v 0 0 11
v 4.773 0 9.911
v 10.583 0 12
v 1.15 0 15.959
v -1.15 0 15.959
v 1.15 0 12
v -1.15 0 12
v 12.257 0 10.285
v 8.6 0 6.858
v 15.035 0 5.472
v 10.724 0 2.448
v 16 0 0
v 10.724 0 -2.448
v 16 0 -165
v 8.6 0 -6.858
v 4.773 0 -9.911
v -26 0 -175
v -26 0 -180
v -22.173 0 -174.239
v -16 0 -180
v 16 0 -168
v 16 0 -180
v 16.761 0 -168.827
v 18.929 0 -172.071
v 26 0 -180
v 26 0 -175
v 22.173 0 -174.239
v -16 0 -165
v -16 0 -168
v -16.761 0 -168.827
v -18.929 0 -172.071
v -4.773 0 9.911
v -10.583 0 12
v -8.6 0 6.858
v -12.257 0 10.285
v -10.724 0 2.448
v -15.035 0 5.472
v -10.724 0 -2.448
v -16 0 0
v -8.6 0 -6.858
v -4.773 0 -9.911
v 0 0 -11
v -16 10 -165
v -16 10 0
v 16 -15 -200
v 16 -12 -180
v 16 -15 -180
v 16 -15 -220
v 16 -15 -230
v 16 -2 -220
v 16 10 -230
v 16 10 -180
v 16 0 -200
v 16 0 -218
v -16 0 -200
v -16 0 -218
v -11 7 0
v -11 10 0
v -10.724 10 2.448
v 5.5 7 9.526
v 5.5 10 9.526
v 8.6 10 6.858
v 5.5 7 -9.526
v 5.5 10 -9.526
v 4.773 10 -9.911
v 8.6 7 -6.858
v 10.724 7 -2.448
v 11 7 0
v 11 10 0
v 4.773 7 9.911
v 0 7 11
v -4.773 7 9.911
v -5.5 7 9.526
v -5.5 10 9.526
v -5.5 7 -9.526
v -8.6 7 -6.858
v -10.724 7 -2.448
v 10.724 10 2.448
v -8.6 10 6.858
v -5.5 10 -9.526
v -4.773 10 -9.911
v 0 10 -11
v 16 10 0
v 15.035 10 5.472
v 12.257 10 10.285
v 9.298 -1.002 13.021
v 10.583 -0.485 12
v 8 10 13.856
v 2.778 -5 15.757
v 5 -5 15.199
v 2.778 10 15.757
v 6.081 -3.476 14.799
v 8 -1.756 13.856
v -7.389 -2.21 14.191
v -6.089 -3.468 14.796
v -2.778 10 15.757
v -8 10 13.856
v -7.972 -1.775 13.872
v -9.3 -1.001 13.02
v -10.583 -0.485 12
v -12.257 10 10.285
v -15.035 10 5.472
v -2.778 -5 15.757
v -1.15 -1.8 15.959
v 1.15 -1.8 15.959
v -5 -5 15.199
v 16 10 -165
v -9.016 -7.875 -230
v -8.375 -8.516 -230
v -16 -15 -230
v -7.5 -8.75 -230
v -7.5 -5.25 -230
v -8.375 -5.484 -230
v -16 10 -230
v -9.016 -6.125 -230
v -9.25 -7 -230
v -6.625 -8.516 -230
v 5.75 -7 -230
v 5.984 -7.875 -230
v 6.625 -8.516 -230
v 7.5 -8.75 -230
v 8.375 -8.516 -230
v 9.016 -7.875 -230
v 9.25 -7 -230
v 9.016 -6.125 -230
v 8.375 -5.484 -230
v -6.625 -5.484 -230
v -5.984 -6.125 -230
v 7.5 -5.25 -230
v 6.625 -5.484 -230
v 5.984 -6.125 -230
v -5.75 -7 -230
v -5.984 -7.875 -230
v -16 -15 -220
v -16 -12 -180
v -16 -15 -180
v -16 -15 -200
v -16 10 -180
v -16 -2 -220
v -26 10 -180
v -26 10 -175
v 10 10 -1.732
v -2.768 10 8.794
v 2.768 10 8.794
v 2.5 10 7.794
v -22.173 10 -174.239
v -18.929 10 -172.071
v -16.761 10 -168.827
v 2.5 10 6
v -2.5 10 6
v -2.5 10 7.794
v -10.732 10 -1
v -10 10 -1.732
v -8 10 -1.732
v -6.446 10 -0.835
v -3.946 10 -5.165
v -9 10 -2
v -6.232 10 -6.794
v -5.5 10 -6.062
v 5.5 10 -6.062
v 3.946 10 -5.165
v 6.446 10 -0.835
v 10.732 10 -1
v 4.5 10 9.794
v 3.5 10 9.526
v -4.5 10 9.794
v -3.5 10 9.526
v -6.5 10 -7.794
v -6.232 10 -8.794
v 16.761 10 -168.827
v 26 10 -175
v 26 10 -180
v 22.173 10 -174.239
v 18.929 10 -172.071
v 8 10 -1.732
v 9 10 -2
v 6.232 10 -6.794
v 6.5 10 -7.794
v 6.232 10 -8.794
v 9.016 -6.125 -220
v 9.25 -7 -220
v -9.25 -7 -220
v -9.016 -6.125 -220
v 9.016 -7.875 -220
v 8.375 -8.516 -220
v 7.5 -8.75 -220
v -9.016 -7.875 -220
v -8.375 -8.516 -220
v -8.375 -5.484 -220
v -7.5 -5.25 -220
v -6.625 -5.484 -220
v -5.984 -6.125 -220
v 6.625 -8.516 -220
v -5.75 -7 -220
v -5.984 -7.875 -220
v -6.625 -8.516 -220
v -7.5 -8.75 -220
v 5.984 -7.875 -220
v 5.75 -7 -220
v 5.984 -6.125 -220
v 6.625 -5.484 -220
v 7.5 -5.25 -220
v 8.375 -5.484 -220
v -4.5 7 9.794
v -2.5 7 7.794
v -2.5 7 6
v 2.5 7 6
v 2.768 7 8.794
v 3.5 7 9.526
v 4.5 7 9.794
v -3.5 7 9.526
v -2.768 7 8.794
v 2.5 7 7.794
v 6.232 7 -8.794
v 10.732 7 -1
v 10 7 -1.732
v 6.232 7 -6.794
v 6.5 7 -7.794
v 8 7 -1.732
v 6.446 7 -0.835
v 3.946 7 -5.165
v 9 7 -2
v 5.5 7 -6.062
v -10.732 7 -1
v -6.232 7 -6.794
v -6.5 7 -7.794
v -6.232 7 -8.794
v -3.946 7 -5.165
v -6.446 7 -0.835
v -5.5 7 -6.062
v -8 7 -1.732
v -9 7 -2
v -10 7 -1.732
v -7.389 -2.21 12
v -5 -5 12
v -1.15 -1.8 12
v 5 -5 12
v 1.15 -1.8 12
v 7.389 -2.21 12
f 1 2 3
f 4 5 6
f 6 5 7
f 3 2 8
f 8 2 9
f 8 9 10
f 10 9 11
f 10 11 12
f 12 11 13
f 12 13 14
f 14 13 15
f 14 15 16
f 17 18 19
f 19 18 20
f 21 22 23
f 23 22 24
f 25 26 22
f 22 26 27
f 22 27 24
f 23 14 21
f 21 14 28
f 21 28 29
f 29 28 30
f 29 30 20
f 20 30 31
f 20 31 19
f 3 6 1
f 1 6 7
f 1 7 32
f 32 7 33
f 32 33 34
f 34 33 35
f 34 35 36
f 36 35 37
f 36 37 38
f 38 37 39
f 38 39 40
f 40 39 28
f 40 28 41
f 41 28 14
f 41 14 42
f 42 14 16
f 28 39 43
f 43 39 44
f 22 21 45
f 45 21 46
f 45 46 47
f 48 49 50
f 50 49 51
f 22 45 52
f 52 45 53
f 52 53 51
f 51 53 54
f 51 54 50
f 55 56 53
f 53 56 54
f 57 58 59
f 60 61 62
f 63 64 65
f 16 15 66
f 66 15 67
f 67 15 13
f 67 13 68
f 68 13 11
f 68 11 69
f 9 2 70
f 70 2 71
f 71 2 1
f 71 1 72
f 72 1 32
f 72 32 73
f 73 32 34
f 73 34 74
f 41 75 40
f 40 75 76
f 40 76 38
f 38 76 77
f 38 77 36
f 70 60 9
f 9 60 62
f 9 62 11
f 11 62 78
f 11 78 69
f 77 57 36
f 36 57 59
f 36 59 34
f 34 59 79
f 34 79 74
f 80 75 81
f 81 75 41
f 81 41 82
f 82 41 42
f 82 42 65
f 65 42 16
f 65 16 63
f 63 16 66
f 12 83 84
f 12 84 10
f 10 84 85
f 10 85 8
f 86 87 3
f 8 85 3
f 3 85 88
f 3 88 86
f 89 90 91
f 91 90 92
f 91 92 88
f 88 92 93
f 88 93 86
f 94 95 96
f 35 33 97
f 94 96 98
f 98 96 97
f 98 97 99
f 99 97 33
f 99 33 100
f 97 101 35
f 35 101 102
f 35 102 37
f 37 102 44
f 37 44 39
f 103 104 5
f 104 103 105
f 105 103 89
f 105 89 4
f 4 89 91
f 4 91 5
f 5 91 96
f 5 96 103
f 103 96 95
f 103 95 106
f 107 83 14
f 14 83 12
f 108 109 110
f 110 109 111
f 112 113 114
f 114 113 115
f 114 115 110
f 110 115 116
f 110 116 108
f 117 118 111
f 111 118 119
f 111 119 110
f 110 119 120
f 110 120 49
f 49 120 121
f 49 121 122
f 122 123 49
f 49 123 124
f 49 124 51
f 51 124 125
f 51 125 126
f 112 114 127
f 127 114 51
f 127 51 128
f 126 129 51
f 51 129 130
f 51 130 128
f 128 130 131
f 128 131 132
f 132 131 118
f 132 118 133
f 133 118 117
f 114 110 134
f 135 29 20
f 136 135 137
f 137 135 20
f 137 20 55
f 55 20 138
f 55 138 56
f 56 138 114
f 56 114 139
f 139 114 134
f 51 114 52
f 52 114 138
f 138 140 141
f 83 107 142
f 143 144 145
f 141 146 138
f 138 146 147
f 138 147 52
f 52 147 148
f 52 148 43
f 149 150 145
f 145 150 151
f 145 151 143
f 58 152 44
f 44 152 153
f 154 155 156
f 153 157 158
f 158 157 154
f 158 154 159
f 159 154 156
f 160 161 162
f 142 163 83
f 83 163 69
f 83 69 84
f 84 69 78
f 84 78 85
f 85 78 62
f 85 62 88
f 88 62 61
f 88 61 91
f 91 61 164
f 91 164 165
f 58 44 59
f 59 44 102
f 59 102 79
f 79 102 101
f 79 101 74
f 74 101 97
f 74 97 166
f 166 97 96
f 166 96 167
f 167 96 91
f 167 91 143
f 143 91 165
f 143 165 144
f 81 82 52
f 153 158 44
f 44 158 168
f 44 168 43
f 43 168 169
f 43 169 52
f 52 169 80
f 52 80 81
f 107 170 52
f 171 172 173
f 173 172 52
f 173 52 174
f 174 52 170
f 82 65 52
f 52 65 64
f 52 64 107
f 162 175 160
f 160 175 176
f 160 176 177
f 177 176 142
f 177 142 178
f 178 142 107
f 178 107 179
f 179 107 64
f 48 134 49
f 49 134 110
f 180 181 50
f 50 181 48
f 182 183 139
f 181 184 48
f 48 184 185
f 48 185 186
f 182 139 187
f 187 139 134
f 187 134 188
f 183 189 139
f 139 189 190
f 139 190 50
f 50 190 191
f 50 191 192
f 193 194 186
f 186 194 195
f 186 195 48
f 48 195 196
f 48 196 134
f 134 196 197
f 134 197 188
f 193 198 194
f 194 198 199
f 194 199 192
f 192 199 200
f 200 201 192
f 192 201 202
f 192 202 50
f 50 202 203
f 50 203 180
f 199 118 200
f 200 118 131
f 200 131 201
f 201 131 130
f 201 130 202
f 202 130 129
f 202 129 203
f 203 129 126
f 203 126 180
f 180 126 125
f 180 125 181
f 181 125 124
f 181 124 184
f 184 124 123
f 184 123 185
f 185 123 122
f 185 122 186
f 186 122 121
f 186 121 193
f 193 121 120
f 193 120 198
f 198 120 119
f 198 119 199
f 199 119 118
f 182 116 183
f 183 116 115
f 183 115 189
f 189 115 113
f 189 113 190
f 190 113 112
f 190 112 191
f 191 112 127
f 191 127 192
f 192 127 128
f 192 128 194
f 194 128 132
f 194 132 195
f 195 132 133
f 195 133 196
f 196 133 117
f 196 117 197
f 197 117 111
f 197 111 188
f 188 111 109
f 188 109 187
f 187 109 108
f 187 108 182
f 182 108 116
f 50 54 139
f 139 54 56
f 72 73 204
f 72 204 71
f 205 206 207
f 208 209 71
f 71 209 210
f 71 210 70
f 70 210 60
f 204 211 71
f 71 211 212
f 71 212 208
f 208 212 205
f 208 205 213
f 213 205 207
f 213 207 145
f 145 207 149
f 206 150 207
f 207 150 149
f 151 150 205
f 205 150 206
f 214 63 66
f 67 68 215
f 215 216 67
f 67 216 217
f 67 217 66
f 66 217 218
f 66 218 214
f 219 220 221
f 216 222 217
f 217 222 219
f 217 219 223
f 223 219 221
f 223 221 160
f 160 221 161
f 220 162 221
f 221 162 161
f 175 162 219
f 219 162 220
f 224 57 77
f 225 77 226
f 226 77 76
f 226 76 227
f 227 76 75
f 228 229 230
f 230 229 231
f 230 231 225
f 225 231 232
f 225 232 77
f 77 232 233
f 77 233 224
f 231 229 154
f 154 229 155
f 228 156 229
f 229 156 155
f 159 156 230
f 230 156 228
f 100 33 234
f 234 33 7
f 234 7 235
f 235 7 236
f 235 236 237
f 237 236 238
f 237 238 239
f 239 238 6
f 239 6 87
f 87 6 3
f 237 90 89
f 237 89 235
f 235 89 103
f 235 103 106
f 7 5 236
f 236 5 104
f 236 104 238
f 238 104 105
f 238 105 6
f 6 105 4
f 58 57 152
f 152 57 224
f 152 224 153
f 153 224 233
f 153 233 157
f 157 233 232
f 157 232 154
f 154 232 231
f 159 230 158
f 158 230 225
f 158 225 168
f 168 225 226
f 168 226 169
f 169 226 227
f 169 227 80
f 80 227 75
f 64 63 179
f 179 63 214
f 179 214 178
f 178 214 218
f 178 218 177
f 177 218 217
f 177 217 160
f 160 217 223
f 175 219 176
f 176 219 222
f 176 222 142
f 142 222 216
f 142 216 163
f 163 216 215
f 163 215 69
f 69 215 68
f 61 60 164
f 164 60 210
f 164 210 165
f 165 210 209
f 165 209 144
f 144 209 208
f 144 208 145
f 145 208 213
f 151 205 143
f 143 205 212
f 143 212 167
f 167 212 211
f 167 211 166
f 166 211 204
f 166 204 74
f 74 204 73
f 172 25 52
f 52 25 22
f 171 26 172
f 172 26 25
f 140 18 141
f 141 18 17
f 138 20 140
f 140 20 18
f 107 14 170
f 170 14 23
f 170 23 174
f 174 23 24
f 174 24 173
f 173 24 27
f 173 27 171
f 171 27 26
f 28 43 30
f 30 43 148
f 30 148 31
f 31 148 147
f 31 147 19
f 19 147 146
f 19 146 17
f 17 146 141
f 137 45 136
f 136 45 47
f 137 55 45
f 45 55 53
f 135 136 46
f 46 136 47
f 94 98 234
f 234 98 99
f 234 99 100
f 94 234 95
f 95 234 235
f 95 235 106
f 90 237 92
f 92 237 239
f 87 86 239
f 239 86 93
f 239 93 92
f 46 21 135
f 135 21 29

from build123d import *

# Parameters (mm, degrees)
BOSS_EXTRUDE1_DEPTH = 10
SKETCH2_W           = 32
SKETCH2_H           = 15
SKETCH2_R           = 1.75
BOSS_EXTRUDE2_DEPTH = 10
CHAMFER1_SIZE       = 2
SKETCH3_W           = 5
SKETCH3_H           = 5
BOSS_EXTRUDE5_DEPTH = 3
BOSS_EXTRUDE6_START = -5
BOSS_EXTRUDE6_DEPTH = 5
SKETCH7_W           = 2.3
SKETCH7_H           = 1.8
CUT_EXTRUDE2_DEPTH  = 243.991769408
FILLET2_R           = 2
SKETCH8_W           = 10
SKETCH8_H           = 5
BOSS_EXTRUDE7_DEPTH = 10
FILLET3_R           = 10
SKETCH9_W           = 32
SKETCH9_H           = 15
BOSS_EXTRUDE8_DEPTH = 20
FILLET4_R           = 10
CHAMFER2_SIZE       = 12


# Some blends are built 0.0001 mm under size
with BuildPart() as part:
    # Sketch1 → Boss-Extrude1 (new body)
    with BuildSketch(Plane(origin=(0, 0, 0), x_dir=(1, 0, 0), z_dir=(0, 1, 0))):
        with BuildLine():
            ThreePointArc((-16, 0), (0, 16), (16, 0))
            Line((16, 0), (16, 230))
            Line((16, 230), (-16, 230))
            Line((-16, 230), (-16, 0))
        make_face()
        with BuildLine():
            ThreePointArc((-11, 0), (0, 11), (11, 0))
            Line((11, 0), (16, 0))
            ThreePointArc((16, 0), (0, 16), (-16, 0))
            Line((-16, 0), (-11, 0))
        make_face()
        with BuildLine():
            Line((16, 0), (11, 0))
            ThreePointArc((11, 0), (0, -11), (-11, 0))
            Line((-11, 0), (-16, 0))
            ThreePointArc((-16, 0), (0, -16), (16, 0))
        make_face()
    extrude(amount=BOSS_EXTRUDE1_DEPTH)

    # Sketch2 → Boss-Extrude2 (add)
    with BuildSketch(Plane(origin=(0, 0, -230), x_dir=(-1, 0, 0), z_dir=(0, 0, -1))):
        with Locations((0, -7.5)):
            Rectangle(SKETCH2_W, SKETCH2_H)
        with Locations((-7.5, -7)):
            Circle(SKETCH2_R, mode=Mode.SUBTRACT)
        with Locations(Location((7.5, -7, 0), (0, 0, 180))):
            Circle(SKETCH2_R, mode=Mode.SUBTRACT)
    extrude(amount=-BOSS_EXTRUDE2_DEPTH)

    # Chamfer1
    chamfer1_edges = [part.edges().sort_by_distance(p)[0] for p in [
        (0, 0, -220),
    ]]
    chamfer(chamfer1_edges, length=CHAMFER1_SIZE)

    # Sketch3 → Boss-Extrude5 (add)
    with BuildSketch(Plane.XZ.offset(-10)):
        with Locations((0, 8.5)):
            Rectangle(SKETCH3_W, SKETCH3_H)
        Polygon((10.776279442, -3.334936491), (6.446152423, -0.834936491), (3.946152423, -5.165063509), (8.276279442, -7.665063509), align=None)
        Polygon((-8.276279442, -7.665063509), (-3.946152423, -5.165063509), (-6.446152423, -0.834936491), (-10.776279442, -3.334936491), align=None)
    extrude(amount=BOSS_EXTRUDE5_DEPTH)

    # Sketch4 → Boss-Extrude6 (add)
    with BuildSketch(Plane(origin=(0, 0, 0), x_dir=(1, 0, 0), z_dir=(0, 1, 0)).offset(BOSS_EXTRUDE6_START)):
        with BuildLine():
            Line((5, -12), (-5, -12))
            Line((-5, -12), (-5, -15.198684154))
            ThreePointArc((-5, -15.198684154), (0, -16), (5, -15.198684154))
            Line((5, -15.198684154), (5, -12))
        make_face()
    extrude(amount=BOSS_EXTRUDE6_DEPTH)

    # Sketch7 → Cut-Extrude2 (cut, through all)
    with BuildSketch(Plane(origin=(0, 0, 12), x_dir=(-1, 0, 0), z_dir=(0, 0, -1))):
        with Locations((0, -0.9)):
            Rectangle(SKETCH7_W, SKETCH7_H)
    extrude(amount=-CUT_EXTRUDE2_DEPTH, mode=Mode.SUBTRACT)

    # Fillet2
    fillet2_edges = [part.edges().sort_by_distance(p)[0] for p in [
        (2.5, 8.5, 10.712142643),
        (-2.5, 8.5, 10.712142643),
        (8.026987658, 8.5, -7.521134831),
        (10.526987658, 8.5, -3.191007812),
        (-10.526987658, 8.5, -3.191007812),
        (-8.026987658, 8.5, -7.521134831),
    ]]
    fillet(fillet2_edges, radius=FILLET2_R - 0.0001)  # a hair under: the kernel refuses the full size

    # Sketch8 → Boss-Extrude7 (add)
    with BuildSketch(Plane.XZ):
        with Locations((21, -177.5)):
            Rectangle(SKETCH8_W, SKETCH8_H)
        with Locations((-21, -177.5)):
            Rectangle(SKETCH8_W, SKETCH8_H)
    extrude(amount=-BOSS_EXTRUDE7_DEPTH)

    # Fillet3
    fillet3_edges = [part.edges().sort_by_distance(p)[0] for p in [
        (16, 5, -175),
        (-16, 5, -175),
    ]]
    fillet(fillet3_edges, radius=FILLET3_R - 0.0001)  # a hair under: the kernel refuses the full size

    # Sketch9 → Boss-Extrude8 (add)
    with BuildSketch(Plane(origin=(0, 0, -180), x_dir=(-1, 0, 0), z_dir=(0, 0, -1))):
        with Locations((0, -7.5)):
            Rectangle(SKETCH9_W, SKETCH9_H)
    extrude(amount=BOSS_EXTRUDE8_DEPTH)

    # Fillet4
    # the kernel refuses this fillet: 10 mm, written as the material it adds along each edge
    with BuildSketch(Plane(origin=(-5, 0, 12), x_dir=(-1, 0, 0), z_dir=(0, 0, 1))) as fillet4_piece_1_section:
        with BuildLine():
            CenterArc((8.660254038, 10), FILLET4_R, 210, 60)
            Line((0, 5), (0, 0))
            Line((0, 0), (8.660254038, 0))
        make_face()
    fillet4_piece_1 = extrude(amount=24.849319248, mode=Mode.PRIVATE)
    fillet4_piece_1 = fillet4_piece_1 & Plane(origin=(0, 0, 0), x_dir=(-1, 0, 0), z_dir=(0, -1, 0)) * Cylinder(16, 85, mode=Mode.PRIVATE)
    add(fillet4_piece_1)
    with BuildSketch(Plane(origin=(5, 0, 36.849319248), x_dir=(1, 0, 0), z_dir=(0, 0, -1))) as fillet4_piece_2_section:
        with BuildLine():
            CenterArc((8.660254038, 10), FILLET4_R, 210, 60)
            Line((0, 5), (0, 0))
            Line((0, 0), (8.660254038, 0))
        make_face()
    fillet4_piece_2 = extrude(amount=24.849319248, mode=Mode.PRIVATE)
    fillet4_piece_2 = fillet4_piece_2 & Plane(origin=(0, 0, 0), x_dir=(-1, 0, 0), z_dir=(0, -1, 0)) * Cylinder(16, 85, mode=Mode.PRIVATE)
    add(fillet4_piece_2)

    # Chamfer2
    chamfer2_edges = [part.edges().sort_by_distance(p)[0] for p in [
        (0, 0, -180),
    ]]
    chamfer(chamfer2_edges, length=CHAMFER2_SIZE)


solid = part.part
